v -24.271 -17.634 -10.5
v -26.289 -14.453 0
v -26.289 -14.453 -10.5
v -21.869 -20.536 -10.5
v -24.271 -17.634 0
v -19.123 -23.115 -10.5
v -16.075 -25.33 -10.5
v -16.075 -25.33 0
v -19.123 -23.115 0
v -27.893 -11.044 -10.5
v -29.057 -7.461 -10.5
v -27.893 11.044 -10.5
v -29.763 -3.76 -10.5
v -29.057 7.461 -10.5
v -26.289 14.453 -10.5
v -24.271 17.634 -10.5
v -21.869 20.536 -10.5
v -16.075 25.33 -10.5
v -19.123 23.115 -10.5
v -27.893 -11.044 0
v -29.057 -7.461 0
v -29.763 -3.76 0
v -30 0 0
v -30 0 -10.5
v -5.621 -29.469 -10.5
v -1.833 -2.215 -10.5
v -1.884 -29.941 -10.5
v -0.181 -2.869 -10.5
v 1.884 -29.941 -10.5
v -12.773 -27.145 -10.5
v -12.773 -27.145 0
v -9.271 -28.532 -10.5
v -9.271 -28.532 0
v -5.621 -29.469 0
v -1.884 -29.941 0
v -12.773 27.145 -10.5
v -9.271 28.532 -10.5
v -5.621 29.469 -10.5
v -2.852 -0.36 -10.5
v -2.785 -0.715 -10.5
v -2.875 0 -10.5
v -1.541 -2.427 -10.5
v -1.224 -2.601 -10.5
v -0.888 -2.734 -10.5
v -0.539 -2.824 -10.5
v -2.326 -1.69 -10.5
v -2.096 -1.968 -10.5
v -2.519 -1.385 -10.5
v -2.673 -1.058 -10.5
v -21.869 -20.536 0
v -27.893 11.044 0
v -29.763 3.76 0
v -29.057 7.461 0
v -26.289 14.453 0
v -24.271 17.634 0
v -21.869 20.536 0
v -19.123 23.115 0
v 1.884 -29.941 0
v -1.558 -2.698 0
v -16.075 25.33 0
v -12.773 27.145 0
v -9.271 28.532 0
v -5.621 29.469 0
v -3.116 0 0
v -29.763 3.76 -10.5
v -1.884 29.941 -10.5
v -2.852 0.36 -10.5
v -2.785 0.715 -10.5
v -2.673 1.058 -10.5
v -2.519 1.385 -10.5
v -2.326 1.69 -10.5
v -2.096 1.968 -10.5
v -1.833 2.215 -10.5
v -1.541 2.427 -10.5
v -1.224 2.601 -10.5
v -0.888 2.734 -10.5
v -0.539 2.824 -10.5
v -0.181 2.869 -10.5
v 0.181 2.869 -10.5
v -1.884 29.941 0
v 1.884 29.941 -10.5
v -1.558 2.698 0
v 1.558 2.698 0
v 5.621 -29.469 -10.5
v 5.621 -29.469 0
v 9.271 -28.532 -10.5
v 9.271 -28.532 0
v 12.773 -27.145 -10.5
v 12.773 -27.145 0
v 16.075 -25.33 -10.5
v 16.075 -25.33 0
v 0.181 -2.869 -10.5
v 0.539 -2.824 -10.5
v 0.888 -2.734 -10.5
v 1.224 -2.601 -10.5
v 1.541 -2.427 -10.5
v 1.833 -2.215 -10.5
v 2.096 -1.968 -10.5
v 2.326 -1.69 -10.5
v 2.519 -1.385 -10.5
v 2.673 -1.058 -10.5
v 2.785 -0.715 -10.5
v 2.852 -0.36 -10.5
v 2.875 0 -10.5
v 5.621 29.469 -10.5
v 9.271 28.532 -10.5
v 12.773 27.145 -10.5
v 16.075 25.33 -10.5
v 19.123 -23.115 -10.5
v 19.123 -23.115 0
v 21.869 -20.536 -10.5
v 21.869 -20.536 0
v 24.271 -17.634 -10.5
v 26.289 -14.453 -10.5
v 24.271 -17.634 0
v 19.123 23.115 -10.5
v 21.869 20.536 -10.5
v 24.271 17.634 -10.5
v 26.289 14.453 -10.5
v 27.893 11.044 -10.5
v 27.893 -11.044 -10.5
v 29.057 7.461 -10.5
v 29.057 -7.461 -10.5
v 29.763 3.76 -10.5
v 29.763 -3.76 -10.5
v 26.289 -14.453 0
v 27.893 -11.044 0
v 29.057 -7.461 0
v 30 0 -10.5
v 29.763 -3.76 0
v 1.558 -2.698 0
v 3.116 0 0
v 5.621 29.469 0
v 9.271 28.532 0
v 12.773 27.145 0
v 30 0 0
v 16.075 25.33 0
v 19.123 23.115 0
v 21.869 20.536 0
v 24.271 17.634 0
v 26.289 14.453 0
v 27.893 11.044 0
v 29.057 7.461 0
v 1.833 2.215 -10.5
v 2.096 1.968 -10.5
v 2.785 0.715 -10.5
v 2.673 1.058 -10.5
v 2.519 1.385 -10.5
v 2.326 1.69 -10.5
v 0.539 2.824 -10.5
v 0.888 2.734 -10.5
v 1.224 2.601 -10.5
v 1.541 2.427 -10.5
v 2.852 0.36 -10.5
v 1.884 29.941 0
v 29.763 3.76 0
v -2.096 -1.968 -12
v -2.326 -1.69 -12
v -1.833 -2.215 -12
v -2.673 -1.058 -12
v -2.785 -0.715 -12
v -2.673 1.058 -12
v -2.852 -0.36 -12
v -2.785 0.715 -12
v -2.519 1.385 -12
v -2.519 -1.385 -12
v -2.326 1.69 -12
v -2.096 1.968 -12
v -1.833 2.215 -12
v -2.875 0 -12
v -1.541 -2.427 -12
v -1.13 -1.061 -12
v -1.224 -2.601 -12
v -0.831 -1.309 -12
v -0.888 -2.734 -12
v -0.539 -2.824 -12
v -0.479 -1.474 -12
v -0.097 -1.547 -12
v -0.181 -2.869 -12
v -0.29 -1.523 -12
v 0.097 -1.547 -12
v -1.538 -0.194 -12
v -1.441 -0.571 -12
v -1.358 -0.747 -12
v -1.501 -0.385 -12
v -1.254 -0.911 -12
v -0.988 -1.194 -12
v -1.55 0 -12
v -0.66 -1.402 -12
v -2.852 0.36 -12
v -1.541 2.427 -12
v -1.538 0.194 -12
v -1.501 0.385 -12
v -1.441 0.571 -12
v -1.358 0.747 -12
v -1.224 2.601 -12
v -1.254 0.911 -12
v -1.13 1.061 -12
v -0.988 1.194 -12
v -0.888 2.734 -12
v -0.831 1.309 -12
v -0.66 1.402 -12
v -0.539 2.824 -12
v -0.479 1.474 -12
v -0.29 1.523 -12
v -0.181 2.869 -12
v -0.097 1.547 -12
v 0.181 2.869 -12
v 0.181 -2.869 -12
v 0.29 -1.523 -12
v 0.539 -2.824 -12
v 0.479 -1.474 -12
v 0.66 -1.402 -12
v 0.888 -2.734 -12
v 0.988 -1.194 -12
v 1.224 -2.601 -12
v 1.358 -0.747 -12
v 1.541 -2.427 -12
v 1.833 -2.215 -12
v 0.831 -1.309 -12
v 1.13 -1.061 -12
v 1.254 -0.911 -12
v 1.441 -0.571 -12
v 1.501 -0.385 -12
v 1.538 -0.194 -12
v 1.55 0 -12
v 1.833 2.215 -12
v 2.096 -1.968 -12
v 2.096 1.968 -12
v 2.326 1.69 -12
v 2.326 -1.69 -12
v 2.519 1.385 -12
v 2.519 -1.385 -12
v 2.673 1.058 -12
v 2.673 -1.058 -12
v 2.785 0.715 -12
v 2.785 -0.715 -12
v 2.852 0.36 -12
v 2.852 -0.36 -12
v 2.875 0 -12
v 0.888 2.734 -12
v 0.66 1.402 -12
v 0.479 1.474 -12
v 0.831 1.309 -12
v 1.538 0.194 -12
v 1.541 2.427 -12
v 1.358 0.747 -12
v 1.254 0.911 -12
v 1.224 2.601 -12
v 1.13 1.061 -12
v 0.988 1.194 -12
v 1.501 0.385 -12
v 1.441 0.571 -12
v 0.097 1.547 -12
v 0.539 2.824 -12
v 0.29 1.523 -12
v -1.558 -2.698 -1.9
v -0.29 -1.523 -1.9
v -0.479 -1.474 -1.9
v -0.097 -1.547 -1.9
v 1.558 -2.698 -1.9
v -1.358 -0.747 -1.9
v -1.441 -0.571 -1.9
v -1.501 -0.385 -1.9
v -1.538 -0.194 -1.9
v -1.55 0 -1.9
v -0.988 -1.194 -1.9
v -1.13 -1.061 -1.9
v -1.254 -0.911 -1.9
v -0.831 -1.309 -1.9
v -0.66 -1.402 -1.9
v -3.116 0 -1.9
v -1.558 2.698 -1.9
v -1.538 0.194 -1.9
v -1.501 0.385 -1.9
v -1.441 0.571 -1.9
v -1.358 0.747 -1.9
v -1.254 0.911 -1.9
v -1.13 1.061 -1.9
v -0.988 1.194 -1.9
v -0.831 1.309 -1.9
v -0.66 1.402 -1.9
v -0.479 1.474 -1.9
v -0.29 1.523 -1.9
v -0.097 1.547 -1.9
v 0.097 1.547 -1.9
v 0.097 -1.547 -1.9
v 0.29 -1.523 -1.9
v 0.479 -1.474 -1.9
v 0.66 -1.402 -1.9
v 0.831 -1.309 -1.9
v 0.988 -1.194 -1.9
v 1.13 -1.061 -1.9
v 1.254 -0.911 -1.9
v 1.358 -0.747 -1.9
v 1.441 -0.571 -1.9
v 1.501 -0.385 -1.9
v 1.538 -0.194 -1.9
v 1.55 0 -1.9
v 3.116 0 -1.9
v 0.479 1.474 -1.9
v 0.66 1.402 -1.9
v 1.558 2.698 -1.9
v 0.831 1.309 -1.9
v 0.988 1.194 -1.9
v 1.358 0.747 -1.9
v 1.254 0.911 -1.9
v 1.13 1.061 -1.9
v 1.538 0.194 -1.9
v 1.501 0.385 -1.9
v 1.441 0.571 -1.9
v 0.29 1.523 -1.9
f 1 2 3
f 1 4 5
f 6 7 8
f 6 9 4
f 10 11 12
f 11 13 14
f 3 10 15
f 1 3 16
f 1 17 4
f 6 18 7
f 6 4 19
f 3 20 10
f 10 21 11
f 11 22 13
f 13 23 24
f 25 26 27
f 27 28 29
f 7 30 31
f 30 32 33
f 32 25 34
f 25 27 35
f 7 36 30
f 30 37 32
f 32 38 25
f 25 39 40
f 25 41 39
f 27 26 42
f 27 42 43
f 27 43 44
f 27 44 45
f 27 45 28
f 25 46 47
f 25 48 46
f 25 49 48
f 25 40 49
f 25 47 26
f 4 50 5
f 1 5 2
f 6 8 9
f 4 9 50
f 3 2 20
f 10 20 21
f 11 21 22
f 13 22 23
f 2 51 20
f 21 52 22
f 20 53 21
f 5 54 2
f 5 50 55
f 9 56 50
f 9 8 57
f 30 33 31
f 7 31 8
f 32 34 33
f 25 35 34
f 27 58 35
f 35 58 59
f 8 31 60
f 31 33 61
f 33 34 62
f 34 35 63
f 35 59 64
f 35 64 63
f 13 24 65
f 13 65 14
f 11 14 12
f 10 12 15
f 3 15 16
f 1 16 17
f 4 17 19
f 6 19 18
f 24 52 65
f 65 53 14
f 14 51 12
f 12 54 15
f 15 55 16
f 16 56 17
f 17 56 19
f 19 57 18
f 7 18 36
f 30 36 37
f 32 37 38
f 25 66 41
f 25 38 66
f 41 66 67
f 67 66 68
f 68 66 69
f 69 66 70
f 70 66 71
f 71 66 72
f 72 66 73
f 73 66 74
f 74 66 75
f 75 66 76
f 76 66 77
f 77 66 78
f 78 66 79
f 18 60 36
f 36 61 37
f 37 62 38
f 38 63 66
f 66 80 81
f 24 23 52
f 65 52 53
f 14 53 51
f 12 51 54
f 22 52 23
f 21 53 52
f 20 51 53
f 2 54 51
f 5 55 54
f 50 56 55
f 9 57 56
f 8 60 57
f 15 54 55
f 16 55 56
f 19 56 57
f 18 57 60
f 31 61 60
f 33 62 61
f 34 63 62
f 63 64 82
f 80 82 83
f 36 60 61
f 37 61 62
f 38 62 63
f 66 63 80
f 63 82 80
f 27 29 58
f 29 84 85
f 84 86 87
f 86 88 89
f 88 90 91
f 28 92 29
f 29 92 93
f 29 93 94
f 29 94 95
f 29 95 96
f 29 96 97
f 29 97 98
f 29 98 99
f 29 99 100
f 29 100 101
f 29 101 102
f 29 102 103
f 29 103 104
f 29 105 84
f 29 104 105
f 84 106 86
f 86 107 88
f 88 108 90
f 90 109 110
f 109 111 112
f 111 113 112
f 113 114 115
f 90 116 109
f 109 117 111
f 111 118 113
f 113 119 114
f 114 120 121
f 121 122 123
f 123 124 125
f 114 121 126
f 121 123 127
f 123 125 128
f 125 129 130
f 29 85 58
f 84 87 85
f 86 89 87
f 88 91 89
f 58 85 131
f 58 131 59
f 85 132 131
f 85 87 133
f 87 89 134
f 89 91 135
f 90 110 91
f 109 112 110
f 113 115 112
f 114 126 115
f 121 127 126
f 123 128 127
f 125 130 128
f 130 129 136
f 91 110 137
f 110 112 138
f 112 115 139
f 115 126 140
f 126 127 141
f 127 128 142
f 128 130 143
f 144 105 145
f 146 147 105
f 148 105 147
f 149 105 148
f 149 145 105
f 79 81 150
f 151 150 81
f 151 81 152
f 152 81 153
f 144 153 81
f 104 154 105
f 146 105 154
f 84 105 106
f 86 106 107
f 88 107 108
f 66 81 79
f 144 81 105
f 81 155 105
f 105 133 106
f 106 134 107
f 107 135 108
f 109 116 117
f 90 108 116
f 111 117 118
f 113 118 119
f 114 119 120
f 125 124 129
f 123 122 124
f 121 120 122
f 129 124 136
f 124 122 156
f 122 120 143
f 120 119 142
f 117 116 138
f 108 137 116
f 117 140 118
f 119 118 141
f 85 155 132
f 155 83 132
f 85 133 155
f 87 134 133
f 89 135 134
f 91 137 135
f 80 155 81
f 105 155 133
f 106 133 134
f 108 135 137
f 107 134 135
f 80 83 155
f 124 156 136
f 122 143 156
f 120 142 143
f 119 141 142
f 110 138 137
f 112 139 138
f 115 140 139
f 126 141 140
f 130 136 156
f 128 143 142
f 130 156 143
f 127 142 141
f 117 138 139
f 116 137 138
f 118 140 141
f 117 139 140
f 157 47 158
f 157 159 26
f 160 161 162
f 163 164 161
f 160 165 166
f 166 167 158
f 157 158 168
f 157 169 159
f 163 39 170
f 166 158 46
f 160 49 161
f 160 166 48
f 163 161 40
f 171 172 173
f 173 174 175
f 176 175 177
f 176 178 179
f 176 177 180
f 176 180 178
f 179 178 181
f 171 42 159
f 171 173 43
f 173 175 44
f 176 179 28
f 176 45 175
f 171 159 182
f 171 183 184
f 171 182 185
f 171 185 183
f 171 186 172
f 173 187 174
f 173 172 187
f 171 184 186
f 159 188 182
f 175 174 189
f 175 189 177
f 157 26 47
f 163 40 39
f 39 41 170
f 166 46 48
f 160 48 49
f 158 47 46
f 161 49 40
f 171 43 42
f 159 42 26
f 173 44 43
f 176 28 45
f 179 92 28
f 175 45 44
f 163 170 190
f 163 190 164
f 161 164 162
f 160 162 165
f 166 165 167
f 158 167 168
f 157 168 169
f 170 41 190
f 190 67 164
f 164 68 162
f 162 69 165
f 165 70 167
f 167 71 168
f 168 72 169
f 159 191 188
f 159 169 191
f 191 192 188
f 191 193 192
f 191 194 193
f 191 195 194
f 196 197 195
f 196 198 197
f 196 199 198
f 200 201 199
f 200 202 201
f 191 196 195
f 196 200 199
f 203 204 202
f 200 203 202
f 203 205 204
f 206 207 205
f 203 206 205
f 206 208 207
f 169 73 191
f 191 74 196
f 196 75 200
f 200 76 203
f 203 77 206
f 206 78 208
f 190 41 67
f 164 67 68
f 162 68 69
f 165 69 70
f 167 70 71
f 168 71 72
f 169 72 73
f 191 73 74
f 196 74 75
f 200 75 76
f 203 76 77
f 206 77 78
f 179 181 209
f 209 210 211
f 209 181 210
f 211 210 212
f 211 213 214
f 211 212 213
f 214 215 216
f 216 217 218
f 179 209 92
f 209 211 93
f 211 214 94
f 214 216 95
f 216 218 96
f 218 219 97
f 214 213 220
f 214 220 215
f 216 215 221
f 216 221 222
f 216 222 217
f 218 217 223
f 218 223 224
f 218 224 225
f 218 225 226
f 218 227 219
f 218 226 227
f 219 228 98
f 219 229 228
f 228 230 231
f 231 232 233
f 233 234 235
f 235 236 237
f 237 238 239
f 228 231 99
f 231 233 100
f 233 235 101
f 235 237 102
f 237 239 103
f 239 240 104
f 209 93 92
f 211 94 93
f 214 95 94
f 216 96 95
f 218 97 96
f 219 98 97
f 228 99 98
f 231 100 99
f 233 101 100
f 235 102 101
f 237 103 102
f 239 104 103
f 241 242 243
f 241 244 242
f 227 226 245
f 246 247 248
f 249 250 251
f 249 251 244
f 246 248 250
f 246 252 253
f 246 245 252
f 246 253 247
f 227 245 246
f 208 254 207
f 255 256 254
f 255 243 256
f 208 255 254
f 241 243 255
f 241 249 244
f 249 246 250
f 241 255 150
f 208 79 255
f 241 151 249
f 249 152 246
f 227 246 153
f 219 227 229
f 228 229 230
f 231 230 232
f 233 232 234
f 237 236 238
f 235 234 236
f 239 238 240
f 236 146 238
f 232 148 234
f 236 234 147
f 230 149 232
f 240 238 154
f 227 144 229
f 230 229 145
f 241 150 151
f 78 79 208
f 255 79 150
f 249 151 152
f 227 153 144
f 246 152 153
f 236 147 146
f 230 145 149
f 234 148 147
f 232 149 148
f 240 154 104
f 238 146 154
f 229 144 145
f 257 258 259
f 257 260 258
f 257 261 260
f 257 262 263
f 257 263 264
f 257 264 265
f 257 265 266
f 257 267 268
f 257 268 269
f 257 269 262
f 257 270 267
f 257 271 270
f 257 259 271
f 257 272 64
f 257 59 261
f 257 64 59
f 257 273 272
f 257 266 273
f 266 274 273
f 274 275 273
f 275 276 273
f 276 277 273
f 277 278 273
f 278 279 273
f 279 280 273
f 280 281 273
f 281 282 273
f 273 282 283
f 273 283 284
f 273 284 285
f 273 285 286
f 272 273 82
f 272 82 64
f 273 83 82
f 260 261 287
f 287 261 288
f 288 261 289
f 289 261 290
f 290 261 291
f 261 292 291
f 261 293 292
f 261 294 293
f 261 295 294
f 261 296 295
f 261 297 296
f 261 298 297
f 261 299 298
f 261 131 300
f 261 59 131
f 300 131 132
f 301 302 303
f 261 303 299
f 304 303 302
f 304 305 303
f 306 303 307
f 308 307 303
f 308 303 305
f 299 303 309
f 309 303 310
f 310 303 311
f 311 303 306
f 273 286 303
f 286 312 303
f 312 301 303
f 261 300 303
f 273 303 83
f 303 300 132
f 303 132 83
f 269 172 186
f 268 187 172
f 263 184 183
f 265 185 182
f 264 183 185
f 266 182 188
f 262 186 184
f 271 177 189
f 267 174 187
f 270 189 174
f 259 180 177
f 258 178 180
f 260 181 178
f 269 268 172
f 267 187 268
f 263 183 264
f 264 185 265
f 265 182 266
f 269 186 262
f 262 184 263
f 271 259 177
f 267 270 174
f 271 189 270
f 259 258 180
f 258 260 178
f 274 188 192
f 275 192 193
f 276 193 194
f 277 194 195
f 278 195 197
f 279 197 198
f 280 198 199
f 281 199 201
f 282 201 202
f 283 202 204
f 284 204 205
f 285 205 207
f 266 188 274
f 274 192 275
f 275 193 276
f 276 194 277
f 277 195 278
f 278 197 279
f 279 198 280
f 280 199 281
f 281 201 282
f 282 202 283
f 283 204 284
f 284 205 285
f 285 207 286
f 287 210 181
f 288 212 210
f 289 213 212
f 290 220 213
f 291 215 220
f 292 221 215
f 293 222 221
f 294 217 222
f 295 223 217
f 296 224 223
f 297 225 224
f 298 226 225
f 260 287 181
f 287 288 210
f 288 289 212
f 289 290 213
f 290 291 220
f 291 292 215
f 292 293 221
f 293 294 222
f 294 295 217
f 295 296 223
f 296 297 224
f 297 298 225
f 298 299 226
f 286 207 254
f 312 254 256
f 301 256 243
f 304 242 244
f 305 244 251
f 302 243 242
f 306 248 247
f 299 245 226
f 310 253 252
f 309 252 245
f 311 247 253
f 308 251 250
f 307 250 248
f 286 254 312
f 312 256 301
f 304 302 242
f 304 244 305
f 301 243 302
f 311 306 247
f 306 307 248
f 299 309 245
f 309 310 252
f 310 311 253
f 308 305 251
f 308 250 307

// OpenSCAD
$fn = 50;

difference() {
	union() {
		translate(v = [0, 0, -10.5]) {
			cylinder(h = 10.5, r = 30.0);
		}
		#translate(v = [0, 0, -12.0]) {
			cylinder(h = 12, r = 2.875);
		}
	}
	union() {
		translate(v = [0, 0, 0]) {
			rotate(a = [0, 0, 0]) {
				difference() {
					union() {
						translate(v = [0, 0, -1.9]) {
							linear_extrude(height = 1.9) {
								polygon(points = [[3.1158, 0.0], [1.5579000000000005, 2.698361953111554], [-1.5578999999999994, 2.6983619531115544], [-3.1158, 3.815754496783323e-16], [-1.5579000000000014, -2.6983619531115535], [1.557899999999998, -2.6983619531115552]]);
							}
						}
					}
					union();
				}
			}
		}
		#translate(v = [0, 0, -100.0]) {
			cylinder(h = 200, r = 1.55);
		}
	}
}
